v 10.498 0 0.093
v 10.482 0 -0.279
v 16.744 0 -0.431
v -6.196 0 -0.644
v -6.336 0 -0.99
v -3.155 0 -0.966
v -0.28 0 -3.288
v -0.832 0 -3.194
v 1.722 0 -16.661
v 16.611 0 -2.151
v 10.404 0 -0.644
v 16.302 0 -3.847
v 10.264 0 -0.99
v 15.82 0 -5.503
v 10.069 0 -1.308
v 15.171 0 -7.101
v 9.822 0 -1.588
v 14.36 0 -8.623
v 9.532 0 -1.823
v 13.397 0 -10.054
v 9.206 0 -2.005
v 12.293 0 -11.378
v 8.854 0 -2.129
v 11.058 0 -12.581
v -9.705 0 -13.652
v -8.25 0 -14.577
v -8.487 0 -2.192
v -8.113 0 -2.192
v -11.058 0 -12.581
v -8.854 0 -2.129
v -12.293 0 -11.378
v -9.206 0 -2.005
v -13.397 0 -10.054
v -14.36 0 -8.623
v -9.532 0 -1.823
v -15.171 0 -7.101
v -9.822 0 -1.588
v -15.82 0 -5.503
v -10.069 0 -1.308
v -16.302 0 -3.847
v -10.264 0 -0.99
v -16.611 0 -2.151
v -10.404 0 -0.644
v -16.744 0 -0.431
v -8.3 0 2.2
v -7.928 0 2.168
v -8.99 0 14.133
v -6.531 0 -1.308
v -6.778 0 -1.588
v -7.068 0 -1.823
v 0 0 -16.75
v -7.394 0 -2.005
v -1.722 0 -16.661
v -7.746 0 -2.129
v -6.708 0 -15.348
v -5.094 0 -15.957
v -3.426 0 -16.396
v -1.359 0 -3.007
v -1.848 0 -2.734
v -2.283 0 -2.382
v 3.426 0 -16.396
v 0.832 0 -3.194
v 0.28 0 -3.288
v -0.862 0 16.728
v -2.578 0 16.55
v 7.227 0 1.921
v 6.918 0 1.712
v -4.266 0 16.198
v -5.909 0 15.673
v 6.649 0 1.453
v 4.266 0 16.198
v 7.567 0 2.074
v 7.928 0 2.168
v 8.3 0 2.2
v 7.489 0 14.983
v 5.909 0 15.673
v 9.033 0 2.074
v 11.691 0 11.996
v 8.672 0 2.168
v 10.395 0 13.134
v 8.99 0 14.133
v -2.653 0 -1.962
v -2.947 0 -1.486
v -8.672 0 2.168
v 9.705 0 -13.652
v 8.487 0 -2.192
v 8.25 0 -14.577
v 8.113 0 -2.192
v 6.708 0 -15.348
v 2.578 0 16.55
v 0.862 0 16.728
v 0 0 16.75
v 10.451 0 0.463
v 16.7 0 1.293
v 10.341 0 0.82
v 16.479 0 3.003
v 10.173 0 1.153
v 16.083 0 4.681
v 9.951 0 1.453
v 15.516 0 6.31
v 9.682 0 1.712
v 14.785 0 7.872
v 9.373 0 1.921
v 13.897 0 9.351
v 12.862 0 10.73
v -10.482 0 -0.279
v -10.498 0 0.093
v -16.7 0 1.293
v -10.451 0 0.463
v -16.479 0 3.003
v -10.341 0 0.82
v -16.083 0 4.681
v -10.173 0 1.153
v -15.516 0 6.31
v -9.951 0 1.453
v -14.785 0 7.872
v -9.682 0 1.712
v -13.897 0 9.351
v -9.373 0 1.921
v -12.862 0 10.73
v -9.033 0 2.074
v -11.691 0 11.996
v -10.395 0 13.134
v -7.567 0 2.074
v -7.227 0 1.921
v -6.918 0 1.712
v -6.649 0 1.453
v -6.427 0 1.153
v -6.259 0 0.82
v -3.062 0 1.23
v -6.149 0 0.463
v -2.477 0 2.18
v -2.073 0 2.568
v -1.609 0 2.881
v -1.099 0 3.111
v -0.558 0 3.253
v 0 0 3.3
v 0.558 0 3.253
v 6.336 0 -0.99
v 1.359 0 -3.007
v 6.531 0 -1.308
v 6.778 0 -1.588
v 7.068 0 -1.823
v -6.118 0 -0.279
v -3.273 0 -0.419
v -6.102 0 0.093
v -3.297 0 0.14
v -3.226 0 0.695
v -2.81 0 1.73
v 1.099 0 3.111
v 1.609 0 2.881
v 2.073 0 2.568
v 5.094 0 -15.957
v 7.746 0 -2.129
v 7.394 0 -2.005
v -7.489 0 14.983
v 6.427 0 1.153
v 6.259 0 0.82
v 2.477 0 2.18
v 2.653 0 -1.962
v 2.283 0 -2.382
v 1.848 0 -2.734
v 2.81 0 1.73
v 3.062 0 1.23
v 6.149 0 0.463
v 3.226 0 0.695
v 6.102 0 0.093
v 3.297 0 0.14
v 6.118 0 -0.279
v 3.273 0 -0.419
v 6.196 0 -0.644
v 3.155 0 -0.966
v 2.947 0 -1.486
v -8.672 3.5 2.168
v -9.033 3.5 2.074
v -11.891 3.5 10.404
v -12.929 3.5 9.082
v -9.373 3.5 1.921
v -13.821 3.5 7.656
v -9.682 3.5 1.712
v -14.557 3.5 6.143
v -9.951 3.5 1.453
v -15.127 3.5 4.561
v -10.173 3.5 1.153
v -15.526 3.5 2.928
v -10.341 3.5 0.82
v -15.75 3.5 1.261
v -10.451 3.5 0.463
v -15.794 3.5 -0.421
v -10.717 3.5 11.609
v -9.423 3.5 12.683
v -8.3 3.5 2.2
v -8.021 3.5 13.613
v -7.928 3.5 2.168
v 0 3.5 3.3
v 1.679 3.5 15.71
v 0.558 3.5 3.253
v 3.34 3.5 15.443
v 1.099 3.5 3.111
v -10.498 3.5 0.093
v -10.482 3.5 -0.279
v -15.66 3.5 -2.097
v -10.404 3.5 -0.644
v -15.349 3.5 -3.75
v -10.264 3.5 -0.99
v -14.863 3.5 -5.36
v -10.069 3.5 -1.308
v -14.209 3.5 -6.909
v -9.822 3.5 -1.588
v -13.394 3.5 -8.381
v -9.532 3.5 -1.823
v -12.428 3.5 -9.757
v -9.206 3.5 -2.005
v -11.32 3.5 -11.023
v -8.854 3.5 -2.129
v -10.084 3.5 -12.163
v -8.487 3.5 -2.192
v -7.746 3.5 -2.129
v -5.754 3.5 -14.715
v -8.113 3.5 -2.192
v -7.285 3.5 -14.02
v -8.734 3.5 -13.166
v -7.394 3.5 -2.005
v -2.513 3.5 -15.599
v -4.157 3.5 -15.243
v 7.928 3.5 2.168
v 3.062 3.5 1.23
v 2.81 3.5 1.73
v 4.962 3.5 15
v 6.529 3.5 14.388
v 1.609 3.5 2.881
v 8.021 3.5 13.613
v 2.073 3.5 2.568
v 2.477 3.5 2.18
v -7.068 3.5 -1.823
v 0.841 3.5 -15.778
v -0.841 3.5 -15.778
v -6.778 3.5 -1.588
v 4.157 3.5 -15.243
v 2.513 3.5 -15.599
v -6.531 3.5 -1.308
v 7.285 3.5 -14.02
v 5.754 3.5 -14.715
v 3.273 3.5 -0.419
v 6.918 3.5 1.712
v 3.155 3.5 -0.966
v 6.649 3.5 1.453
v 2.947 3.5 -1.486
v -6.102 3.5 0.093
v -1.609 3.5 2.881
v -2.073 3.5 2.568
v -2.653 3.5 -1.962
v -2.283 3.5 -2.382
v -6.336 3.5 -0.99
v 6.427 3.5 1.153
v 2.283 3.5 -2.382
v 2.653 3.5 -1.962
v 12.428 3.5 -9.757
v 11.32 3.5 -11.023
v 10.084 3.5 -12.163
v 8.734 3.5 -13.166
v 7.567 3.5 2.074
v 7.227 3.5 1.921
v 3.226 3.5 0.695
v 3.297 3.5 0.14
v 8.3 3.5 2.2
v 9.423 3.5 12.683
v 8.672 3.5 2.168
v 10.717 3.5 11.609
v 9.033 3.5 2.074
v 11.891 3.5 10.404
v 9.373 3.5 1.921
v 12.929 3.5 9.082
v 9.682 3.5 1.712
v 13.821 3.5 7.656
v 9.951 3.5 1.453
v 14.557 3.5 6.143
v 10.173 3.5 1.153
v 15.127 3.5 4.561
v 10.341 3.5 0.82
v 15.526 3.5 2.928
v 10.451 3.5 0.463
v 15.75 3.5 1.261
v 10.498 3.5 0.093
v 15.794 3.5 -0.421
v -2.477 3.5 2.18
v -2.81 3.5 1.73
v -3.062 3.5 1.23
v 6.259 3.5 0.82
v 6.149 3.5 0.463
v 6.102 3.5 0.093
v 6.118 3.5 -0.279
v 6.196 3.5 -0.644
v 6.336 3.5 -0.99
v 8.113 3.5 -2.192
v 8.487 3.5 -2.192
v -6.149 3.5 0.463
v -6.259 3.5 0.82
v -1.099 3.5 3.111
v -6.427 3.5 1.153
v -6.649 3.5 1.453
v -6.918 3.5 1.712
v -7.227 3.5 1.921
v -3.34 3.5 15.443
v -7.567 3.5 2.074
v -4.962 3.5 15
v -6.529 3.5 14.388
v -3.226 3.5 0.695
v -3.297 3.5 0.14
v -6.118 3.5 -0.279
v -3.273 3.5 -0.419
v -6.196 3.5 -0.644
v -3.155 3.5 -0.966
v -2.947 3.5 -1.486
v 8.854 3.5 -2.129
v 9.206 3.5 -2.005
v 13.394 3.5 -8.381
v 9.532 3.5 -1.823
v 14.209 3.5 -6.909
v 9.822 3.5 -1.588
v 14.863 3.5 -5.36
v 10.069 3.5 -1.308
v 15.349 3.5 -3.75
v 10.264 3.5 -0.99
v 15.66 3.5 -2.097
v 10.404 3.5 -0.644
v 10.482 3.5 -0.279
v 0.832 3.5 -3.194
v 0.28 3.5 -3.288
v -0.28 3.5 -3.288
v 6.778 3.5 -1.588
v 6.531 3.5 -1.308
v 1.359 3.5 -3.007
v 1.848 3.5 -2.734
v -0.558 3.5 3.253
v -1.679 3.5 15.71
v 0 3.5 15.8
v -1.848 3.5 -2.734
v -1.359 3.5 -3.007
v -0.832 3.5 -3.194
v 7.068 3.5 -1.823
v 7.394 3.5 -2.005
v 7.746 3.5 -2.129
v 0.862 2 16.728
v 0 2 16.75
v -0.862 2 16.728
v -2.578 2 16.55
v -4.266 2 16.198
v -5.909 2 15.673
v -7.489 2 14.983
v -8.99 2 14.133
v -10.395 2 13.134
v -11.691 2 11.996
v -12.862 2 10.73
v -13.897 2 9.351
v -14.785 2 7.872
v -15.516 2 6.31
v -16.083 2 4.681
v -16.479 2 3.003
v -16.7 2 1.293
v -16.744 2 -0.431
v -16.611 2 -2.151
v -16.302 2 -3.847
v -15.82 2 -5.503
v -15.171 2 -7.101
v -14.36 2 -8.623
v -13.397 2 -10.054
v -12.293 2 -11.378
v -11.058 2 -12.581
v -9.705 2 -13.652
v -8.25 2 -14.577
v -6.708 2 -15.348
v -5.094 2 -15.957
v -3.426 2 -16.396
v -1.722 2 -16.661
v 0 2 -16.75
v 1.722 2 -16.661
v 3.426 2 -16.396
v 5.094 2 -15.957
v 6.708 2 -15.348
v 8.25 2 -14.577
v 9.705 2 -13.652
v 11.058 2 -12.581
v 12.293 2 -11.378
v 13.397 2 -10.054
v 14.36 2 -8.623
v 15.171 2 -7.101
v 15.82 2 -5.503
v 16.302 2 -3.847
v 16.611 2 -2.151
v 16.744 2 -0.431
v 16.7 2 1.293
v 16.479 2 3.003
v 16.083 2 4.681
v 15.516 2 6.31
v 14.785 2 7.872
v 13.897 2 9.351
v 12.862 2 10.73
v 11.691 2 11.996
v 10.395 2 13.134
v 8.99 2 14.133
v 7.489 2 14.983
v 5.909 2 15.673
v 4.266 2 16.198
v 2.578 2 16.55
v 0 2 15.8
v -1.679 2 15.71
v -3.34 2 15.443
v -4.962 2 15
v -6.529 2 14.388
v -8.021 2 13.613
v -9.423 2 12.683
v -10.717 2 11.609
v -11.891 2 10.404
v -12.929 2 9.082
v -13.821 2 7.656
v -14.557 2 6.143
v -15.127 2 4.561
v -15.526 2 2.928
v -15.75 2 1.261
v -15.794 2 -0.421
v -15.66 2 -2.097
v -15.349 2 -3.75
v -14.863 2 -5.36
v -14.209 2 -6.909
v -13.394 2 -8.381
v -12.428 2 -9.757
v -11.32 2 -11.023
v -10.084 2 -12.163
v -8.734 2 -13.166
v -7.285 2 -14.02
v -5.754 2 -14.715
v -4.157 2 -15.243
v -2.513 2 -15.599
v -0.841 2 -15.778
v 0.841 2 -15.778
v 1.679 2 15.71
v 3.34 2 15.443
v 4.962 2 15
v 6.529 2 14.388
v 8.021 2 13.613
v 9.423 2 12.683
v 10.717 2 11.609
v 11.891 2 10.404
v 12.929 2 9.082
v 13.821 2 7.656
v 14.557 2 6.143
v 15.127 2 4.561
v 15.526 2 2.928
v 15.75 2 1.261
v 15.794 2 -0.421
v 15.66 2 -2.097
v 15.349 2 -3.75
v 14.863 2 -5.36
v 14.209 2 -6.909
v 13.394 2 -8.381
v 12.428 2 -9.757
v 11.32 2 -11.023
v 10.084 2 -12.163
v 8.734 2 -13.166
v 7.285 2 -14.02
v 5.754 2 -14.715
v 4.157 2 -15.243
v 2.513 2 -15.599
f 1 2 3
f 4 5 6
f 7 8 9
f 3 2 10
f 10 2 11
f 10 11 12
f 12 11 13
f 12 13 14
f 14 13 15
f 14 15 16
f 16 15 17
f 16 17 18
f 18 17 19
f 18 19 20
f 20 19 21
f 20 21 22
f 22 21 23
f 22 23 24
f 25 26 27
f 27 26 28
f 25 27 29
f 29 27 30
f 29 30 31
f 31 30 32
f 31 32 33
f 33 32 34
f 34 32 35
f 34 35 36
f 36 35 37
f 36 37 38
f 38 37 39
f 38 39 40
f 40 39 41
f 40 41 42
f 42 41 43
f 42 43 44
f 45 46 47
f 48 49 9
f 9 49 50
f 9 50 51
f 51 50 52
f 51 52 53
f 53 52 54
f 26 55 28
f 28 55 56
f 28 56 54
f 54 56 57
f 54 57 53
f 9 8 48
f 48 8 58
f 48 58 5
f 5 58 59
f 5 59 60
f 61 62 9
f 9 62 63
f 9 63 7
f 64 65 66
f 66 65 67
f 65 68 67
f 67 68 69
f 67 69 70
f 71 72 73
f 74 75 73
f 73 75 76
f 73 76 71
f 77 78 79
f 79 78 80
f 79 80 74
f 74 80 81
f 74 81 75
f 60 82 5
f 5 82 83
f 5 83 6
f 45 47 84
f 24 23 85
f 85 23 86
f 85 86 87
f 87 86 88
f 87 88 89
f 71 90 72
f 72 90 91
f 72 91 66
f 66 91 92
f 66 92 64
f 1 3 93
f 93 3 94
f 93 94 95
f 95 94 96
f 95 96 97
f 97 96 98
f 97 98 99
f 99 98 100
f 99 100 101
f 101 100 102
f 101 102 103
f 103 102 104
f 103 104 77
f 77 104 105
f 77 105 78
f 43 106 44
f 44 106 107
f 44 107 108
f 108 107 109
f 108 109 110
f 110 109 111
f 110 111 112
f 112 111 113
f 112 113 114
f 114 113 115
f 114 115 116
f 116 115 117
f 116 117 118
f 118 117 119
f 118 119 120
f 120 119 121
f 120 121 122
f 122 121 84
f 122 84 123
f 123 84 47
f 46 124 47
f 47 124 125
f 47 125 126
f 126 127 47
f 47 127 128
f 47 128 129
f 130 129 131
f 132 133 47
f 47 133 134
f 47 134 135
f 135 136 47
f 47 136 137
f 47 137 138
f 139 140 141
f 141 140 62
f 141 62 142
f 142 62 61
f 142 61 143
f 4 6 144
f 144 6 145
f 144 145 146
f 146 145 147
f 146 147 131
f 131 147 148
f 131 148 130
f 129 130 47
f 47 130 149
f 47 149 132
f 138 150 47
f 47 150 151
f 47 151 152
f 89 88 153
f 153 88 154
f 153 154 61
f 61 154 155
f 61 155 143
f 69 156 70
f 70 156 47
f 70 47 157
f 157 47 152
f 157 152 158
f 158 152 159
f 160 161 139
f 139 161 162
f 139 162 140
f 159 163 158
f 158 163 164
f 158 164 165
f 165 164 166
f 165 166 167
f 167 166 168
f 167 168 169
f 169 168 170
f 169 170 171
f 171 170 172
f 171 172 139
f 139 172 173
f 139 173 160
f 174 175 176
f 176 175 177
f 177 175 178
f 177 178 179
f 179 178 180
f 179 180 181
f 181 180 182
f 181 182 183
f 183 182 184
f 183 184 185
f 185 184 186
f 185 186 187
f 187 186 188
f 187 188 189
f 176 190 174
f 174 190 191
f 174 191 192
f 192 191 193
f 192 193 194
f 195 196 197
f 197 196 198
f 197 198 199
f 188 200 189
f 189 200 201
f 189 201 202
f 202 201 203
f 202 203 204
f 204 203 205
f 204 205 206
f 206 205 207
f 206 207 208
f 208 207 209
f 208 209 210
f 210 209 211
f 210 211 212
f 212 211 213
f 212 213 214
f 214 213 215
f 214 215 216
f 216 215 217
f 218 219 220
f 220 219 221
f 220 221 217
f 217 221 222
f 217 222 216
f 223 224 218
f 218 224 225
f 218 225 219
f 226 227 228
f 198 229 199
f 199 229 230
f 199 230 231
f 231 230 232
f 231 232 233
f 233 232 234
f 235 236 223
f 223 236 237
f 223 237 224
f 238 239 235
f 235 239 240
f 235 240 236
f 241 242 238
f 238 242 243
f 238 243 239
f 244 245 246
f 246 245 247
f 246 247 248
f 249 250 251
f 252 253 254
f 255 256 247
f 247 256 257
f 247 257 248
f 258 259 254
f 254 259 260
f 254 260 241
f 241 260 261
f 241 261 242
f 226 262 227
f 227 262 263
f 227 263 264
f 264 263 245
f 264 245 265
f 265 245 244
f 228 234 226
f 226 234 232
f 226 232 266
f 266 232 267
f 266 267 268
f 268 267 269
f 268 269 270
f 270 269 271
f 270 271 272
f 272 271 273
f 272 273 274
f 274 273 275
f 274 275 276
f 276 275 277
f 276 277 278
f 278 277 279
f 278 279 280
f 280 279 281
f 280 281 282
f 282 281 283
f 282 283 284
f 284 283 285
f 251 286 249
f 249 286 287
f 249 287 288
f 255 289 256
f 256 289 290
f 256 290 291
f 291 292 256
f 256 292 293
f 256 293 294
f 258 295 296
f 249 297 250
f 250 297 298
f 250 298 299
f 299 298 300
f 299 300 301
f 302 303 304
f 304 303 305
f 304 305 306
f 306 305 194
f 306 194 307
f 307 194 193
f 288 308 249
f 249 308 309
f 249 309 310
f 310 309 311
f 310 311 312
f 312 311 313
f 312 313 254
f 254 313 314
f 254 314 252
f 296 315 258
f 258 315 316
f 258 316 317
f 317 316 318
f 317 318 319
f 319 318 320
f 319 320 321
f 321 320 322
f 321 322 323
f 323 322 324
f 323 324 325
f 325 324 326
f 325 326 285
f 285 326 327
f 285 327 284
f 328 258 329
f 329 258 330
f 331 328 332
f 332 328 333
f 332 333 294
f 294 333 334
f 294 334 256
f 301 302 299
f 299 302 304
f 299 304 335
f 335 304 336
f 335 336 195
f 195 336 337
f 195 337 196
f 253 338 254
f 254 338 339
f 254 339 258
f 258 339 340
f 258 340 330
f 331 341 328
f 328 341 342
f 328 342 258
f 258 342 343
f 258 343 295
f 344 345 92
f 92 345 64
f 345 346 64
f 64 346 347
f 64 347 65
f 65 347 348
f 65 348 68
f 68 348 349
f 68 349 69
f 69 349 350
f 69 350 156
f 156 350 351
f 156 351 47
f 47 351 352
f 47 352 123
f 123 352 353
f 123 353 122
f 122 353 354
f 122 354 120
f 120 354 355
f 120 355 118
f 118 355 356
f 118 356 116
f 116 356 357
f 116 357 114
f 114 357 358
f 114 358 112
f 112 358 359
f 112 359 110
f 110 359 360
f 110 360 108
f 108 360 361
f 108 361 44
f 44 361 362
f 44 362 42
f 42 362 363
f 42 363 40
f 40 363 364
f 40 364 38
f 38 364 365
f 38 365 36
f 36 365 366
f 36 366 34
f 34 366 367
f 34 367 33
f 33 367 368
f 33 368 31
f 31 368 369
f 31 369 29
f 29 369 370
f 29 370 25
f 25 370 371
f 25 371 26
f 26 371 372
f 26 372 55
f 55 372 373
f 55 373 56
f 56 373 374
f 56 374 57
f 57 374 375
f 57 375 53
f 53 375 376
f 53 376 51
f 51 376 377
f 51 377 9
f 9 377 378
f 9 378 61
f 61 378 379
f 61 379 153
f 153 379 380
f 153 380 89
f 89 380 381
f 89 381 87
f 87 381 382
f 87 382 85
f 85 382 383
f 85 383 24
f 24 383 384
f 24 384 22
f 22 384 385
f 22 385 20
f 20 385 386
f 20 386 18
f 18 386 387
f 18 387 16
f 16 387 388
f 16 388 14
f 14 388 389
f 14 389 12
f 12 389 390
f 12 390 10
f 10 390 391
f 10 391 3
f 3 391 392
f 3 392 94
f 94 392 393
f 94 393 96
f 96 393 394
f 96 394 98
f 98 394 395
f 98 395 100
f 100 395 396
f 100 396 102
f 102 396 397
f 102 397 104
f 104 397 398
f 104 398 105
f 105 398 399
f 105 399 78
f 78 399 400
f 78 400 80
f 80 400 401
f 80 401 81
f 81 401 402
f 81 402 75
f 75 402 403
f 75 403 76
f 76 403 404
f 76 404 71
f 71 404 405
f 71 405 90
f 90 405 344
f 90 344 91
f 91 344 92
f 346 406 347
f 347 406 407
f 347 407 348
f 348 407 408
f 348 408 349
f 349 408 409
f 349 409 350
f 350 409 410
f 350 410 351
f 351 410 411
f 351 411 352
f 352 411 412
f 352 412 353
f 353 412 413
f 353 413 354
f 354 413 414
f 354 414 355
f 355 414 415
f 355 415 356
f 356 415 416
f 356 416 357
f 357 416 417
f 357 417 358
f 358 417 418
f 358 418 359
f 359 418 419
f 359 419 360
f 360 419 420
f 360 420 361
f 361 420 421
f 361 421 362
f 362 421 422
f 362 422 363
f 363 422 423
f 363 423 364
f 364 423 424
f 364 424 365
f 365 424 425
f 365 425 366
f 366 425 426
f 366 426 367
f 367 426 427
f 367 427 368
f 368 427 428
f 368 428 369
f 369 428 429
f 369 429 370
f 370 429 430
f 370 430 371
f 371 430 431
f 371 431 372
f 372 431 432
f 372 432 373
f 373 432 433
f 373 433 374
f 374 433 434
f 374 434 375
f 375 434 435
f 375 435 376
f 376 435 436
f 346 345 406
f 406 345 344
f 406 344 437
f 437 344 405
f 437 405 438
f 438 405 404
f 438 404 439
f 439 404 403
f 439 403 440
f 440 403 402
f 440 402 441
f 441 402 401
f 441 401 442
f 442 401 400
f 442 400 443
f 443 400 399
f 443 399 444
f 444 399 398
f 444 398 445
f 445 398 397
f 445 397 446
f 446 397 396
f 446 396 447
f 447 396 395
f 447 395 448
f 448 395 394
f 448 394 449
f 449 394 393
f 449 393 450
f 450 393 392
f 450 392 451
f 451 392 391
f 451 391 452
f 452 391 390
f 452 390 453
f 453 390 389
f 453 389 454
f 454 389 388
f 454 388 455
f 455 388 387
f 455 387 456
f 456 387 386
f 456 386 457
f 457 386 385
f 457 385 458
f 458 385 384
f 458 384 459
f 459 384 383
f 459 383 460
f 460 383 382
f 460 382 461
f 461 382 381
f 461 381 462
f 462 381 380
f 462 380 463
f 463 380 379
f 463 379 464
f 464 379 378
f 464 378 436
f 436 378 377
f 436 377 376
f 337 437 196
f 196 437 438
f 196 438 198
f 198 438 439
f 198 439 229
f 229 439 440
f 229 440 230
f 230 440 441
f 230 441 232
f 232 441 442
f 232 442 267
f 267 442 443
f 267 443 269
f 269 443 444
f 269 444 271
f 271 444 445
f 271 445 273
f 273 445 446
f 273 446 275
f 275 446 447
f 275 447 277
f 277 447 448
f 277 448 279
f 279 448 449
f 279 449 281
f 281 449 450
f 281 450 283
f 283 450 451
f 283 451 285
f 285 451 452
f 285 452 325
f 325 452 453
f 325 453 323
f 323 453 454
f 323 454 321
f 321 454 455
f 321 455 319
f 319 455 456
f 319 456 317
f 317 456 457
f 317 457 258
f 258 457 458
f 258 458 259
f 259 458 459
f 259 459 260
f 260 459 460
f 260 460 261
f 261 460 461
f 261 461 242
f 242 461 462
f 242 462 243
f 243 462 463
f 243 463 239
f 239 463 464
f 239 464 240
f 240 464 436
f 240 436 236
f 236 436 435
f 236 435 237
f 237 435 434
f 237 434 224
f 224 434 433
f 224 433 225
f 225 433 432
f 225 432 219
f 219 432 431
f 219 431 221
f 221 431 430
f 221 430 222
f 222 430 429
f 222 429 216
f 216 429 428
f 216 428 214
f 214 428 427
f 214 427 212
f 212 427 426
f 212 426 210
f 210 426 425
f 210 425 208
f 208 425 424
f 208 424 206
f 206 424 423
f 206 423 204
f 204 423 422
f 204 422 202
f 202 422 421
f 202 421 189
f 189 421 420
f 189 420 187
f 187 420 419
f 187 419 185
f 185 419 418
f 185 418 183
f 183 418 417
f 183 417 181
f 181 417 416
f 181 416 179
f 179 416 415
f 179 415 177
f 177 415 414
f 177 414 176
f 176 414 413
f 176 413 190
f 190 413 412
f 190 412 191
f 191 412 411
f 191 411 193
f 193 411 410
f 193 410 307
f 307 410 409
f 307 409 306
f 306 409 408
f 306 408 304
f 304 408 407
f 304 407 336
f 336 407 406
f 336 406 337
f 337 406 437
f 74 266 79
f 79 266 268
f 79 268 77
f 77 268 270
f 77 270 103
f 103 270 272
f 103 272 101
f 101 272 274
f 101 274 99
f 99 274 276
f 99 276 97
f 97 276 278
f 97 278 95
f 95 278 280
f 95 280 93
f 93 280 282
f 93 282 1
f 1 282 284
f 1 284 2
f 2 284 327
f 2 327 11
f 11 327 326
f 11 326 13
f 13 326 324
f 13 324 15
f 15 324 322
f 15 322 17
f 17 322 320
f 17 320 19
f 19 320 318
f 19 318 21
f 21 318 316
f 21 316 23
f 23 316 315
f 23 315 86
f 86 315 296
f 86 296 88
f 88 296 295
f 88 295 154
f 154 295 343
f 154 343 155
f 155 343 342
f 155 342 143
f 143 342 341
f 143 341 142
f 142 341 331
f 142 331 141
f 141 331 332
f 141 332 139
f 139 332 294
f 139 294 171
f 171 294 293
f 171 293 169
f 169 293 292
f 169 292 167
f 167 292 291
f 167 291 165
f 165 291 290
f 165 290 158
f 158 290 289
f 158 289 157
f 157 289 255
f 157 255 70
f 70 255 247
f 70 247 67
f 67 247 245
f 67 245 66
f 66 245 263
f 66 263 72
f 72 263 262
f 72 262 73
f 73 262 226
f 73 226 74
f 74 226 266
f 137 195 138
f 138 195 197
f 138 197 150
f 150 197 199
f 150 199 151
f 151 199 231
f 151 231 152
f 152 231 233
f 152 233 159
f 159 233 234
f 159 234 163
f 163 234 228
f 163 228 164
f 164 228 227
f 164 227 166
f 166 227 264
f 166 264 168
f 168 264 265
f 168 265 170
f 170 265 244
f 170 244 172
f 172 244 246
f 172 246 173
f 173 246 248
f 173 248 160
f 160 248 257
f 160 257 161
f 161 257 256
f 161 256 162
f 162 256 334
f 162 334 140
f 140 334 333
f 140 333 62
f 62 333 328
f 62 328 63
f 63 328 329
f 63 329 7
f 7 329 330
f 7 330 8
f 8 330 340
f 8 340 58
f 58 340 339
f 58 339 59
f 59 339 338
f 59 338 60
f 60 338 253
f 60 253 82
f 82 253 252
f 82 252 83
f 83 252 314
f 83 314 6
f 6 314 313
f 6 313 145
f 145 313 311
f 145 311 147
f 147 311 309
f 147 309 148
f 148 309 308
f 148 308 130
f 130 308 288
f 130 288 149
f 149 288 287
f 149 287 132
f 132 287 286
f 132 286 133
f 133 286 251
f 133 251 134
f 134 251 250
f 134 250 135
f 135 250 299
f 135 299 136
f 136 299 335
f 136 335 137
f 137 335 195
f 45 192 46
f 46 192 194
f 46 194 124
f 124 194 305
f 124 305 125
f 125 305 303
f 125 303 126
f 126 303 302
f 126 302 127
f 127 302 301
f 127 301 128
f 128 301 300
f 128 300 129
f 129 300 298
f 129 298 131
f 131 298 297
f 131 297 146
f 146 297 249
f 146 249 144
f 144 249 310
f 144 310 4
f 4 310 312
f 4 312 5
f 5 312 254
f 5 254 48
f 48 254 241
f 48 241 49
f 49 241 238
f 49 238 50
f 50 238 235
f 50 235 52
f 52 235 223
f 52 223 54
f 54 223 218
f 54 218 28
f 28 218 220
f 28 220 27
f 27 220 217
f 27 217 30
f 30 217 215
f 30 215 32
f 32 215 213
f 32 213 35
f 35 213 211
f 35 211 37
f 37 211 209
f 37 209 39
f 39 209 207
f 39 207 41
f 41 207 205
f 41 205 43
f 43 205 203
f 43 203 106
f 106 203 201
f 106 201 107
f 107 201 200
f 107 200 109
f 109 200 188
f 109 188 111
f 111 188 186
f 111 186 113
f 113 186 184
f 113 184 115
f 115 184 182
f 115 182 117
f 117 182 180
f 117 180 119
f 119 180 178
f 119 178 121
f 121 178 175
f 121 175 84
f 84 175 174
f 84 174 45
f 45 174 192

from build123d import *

# Parameters (mm, degrees)
SKETCH1_R           = 16.75
BOSS_EXTRUDE1_DEPTH = 3.5
SKETCH2_OUTSIDE_W   = 45.002
SKETCH2_OUTSIDE_H   = 45.002
SKETCH2_OUTSIDE_R   = 15.8
CUT_EXTRUDE1_DEPTH  = 1.5
SKETCH3_R           = 3.3
SKETCH3_R_2         = 2.2
CUT_EXTRUDE2_DEPTH  = 24.945250051


with BuildPart() as part:
    # Sketch1 → Boss-Extrude1 (new body)
    with BuildSketch(Plane(origin=(0, 0, 0), x_dir=(1, 0, 0), z_dir=(0, 1, 0))):
        with Locations(Location((0, 0, 0), (0, 0, 270))):
            Circle(SKETCH1_R)
    extrude(amount=BOSS_EXTRUDE1_DEPTH)

    # Sketch2 outside → Cut-Extrude1 (cut)
    with BuildSketch(Plane(origin=(0, 3.5, 0), x_dir=(1, 0, 0), z_dir=(0, 1, 0))):
        Rectangle(SKETCH2_OUTSIDE_W, SKETCH2_OUTSIDE_H)
        with Locations(Location((0, 0, 0), (0, 0, 270))):
            Circle(SKETCH2_OUTSIDE_R, mode=Mode.SUBTRACT)
    extrude(amount=-CUT_EXTRUDE1_DEPTH, mode=Mode.SUBTRACT)

    # Sketch3 → Cut-Extrude2 (cut, through all)
    with BuildSketch(Plane(origin=(0, 3.5, 0), x_dir=(1, 0, 0), z_dir=(0, 1, 0))):
        with Locations(Location((0, 0, 0), (0, 0, 270))):
            Circle(SKETCH3_R)
        with Locations(Location((-8.3, 0, 0), (0, 0, 270))):
            Circle(SKETCH3_R_2)
        with Locations(Location((8.3, 0, 0), (0, 0, 270))):
            Circle(SKETCH3_R_2)
    extrude(amount=-CUT_EXTRUDE2_DEPTH, mode=Mode.SUBTRACT)


solid = part.part
